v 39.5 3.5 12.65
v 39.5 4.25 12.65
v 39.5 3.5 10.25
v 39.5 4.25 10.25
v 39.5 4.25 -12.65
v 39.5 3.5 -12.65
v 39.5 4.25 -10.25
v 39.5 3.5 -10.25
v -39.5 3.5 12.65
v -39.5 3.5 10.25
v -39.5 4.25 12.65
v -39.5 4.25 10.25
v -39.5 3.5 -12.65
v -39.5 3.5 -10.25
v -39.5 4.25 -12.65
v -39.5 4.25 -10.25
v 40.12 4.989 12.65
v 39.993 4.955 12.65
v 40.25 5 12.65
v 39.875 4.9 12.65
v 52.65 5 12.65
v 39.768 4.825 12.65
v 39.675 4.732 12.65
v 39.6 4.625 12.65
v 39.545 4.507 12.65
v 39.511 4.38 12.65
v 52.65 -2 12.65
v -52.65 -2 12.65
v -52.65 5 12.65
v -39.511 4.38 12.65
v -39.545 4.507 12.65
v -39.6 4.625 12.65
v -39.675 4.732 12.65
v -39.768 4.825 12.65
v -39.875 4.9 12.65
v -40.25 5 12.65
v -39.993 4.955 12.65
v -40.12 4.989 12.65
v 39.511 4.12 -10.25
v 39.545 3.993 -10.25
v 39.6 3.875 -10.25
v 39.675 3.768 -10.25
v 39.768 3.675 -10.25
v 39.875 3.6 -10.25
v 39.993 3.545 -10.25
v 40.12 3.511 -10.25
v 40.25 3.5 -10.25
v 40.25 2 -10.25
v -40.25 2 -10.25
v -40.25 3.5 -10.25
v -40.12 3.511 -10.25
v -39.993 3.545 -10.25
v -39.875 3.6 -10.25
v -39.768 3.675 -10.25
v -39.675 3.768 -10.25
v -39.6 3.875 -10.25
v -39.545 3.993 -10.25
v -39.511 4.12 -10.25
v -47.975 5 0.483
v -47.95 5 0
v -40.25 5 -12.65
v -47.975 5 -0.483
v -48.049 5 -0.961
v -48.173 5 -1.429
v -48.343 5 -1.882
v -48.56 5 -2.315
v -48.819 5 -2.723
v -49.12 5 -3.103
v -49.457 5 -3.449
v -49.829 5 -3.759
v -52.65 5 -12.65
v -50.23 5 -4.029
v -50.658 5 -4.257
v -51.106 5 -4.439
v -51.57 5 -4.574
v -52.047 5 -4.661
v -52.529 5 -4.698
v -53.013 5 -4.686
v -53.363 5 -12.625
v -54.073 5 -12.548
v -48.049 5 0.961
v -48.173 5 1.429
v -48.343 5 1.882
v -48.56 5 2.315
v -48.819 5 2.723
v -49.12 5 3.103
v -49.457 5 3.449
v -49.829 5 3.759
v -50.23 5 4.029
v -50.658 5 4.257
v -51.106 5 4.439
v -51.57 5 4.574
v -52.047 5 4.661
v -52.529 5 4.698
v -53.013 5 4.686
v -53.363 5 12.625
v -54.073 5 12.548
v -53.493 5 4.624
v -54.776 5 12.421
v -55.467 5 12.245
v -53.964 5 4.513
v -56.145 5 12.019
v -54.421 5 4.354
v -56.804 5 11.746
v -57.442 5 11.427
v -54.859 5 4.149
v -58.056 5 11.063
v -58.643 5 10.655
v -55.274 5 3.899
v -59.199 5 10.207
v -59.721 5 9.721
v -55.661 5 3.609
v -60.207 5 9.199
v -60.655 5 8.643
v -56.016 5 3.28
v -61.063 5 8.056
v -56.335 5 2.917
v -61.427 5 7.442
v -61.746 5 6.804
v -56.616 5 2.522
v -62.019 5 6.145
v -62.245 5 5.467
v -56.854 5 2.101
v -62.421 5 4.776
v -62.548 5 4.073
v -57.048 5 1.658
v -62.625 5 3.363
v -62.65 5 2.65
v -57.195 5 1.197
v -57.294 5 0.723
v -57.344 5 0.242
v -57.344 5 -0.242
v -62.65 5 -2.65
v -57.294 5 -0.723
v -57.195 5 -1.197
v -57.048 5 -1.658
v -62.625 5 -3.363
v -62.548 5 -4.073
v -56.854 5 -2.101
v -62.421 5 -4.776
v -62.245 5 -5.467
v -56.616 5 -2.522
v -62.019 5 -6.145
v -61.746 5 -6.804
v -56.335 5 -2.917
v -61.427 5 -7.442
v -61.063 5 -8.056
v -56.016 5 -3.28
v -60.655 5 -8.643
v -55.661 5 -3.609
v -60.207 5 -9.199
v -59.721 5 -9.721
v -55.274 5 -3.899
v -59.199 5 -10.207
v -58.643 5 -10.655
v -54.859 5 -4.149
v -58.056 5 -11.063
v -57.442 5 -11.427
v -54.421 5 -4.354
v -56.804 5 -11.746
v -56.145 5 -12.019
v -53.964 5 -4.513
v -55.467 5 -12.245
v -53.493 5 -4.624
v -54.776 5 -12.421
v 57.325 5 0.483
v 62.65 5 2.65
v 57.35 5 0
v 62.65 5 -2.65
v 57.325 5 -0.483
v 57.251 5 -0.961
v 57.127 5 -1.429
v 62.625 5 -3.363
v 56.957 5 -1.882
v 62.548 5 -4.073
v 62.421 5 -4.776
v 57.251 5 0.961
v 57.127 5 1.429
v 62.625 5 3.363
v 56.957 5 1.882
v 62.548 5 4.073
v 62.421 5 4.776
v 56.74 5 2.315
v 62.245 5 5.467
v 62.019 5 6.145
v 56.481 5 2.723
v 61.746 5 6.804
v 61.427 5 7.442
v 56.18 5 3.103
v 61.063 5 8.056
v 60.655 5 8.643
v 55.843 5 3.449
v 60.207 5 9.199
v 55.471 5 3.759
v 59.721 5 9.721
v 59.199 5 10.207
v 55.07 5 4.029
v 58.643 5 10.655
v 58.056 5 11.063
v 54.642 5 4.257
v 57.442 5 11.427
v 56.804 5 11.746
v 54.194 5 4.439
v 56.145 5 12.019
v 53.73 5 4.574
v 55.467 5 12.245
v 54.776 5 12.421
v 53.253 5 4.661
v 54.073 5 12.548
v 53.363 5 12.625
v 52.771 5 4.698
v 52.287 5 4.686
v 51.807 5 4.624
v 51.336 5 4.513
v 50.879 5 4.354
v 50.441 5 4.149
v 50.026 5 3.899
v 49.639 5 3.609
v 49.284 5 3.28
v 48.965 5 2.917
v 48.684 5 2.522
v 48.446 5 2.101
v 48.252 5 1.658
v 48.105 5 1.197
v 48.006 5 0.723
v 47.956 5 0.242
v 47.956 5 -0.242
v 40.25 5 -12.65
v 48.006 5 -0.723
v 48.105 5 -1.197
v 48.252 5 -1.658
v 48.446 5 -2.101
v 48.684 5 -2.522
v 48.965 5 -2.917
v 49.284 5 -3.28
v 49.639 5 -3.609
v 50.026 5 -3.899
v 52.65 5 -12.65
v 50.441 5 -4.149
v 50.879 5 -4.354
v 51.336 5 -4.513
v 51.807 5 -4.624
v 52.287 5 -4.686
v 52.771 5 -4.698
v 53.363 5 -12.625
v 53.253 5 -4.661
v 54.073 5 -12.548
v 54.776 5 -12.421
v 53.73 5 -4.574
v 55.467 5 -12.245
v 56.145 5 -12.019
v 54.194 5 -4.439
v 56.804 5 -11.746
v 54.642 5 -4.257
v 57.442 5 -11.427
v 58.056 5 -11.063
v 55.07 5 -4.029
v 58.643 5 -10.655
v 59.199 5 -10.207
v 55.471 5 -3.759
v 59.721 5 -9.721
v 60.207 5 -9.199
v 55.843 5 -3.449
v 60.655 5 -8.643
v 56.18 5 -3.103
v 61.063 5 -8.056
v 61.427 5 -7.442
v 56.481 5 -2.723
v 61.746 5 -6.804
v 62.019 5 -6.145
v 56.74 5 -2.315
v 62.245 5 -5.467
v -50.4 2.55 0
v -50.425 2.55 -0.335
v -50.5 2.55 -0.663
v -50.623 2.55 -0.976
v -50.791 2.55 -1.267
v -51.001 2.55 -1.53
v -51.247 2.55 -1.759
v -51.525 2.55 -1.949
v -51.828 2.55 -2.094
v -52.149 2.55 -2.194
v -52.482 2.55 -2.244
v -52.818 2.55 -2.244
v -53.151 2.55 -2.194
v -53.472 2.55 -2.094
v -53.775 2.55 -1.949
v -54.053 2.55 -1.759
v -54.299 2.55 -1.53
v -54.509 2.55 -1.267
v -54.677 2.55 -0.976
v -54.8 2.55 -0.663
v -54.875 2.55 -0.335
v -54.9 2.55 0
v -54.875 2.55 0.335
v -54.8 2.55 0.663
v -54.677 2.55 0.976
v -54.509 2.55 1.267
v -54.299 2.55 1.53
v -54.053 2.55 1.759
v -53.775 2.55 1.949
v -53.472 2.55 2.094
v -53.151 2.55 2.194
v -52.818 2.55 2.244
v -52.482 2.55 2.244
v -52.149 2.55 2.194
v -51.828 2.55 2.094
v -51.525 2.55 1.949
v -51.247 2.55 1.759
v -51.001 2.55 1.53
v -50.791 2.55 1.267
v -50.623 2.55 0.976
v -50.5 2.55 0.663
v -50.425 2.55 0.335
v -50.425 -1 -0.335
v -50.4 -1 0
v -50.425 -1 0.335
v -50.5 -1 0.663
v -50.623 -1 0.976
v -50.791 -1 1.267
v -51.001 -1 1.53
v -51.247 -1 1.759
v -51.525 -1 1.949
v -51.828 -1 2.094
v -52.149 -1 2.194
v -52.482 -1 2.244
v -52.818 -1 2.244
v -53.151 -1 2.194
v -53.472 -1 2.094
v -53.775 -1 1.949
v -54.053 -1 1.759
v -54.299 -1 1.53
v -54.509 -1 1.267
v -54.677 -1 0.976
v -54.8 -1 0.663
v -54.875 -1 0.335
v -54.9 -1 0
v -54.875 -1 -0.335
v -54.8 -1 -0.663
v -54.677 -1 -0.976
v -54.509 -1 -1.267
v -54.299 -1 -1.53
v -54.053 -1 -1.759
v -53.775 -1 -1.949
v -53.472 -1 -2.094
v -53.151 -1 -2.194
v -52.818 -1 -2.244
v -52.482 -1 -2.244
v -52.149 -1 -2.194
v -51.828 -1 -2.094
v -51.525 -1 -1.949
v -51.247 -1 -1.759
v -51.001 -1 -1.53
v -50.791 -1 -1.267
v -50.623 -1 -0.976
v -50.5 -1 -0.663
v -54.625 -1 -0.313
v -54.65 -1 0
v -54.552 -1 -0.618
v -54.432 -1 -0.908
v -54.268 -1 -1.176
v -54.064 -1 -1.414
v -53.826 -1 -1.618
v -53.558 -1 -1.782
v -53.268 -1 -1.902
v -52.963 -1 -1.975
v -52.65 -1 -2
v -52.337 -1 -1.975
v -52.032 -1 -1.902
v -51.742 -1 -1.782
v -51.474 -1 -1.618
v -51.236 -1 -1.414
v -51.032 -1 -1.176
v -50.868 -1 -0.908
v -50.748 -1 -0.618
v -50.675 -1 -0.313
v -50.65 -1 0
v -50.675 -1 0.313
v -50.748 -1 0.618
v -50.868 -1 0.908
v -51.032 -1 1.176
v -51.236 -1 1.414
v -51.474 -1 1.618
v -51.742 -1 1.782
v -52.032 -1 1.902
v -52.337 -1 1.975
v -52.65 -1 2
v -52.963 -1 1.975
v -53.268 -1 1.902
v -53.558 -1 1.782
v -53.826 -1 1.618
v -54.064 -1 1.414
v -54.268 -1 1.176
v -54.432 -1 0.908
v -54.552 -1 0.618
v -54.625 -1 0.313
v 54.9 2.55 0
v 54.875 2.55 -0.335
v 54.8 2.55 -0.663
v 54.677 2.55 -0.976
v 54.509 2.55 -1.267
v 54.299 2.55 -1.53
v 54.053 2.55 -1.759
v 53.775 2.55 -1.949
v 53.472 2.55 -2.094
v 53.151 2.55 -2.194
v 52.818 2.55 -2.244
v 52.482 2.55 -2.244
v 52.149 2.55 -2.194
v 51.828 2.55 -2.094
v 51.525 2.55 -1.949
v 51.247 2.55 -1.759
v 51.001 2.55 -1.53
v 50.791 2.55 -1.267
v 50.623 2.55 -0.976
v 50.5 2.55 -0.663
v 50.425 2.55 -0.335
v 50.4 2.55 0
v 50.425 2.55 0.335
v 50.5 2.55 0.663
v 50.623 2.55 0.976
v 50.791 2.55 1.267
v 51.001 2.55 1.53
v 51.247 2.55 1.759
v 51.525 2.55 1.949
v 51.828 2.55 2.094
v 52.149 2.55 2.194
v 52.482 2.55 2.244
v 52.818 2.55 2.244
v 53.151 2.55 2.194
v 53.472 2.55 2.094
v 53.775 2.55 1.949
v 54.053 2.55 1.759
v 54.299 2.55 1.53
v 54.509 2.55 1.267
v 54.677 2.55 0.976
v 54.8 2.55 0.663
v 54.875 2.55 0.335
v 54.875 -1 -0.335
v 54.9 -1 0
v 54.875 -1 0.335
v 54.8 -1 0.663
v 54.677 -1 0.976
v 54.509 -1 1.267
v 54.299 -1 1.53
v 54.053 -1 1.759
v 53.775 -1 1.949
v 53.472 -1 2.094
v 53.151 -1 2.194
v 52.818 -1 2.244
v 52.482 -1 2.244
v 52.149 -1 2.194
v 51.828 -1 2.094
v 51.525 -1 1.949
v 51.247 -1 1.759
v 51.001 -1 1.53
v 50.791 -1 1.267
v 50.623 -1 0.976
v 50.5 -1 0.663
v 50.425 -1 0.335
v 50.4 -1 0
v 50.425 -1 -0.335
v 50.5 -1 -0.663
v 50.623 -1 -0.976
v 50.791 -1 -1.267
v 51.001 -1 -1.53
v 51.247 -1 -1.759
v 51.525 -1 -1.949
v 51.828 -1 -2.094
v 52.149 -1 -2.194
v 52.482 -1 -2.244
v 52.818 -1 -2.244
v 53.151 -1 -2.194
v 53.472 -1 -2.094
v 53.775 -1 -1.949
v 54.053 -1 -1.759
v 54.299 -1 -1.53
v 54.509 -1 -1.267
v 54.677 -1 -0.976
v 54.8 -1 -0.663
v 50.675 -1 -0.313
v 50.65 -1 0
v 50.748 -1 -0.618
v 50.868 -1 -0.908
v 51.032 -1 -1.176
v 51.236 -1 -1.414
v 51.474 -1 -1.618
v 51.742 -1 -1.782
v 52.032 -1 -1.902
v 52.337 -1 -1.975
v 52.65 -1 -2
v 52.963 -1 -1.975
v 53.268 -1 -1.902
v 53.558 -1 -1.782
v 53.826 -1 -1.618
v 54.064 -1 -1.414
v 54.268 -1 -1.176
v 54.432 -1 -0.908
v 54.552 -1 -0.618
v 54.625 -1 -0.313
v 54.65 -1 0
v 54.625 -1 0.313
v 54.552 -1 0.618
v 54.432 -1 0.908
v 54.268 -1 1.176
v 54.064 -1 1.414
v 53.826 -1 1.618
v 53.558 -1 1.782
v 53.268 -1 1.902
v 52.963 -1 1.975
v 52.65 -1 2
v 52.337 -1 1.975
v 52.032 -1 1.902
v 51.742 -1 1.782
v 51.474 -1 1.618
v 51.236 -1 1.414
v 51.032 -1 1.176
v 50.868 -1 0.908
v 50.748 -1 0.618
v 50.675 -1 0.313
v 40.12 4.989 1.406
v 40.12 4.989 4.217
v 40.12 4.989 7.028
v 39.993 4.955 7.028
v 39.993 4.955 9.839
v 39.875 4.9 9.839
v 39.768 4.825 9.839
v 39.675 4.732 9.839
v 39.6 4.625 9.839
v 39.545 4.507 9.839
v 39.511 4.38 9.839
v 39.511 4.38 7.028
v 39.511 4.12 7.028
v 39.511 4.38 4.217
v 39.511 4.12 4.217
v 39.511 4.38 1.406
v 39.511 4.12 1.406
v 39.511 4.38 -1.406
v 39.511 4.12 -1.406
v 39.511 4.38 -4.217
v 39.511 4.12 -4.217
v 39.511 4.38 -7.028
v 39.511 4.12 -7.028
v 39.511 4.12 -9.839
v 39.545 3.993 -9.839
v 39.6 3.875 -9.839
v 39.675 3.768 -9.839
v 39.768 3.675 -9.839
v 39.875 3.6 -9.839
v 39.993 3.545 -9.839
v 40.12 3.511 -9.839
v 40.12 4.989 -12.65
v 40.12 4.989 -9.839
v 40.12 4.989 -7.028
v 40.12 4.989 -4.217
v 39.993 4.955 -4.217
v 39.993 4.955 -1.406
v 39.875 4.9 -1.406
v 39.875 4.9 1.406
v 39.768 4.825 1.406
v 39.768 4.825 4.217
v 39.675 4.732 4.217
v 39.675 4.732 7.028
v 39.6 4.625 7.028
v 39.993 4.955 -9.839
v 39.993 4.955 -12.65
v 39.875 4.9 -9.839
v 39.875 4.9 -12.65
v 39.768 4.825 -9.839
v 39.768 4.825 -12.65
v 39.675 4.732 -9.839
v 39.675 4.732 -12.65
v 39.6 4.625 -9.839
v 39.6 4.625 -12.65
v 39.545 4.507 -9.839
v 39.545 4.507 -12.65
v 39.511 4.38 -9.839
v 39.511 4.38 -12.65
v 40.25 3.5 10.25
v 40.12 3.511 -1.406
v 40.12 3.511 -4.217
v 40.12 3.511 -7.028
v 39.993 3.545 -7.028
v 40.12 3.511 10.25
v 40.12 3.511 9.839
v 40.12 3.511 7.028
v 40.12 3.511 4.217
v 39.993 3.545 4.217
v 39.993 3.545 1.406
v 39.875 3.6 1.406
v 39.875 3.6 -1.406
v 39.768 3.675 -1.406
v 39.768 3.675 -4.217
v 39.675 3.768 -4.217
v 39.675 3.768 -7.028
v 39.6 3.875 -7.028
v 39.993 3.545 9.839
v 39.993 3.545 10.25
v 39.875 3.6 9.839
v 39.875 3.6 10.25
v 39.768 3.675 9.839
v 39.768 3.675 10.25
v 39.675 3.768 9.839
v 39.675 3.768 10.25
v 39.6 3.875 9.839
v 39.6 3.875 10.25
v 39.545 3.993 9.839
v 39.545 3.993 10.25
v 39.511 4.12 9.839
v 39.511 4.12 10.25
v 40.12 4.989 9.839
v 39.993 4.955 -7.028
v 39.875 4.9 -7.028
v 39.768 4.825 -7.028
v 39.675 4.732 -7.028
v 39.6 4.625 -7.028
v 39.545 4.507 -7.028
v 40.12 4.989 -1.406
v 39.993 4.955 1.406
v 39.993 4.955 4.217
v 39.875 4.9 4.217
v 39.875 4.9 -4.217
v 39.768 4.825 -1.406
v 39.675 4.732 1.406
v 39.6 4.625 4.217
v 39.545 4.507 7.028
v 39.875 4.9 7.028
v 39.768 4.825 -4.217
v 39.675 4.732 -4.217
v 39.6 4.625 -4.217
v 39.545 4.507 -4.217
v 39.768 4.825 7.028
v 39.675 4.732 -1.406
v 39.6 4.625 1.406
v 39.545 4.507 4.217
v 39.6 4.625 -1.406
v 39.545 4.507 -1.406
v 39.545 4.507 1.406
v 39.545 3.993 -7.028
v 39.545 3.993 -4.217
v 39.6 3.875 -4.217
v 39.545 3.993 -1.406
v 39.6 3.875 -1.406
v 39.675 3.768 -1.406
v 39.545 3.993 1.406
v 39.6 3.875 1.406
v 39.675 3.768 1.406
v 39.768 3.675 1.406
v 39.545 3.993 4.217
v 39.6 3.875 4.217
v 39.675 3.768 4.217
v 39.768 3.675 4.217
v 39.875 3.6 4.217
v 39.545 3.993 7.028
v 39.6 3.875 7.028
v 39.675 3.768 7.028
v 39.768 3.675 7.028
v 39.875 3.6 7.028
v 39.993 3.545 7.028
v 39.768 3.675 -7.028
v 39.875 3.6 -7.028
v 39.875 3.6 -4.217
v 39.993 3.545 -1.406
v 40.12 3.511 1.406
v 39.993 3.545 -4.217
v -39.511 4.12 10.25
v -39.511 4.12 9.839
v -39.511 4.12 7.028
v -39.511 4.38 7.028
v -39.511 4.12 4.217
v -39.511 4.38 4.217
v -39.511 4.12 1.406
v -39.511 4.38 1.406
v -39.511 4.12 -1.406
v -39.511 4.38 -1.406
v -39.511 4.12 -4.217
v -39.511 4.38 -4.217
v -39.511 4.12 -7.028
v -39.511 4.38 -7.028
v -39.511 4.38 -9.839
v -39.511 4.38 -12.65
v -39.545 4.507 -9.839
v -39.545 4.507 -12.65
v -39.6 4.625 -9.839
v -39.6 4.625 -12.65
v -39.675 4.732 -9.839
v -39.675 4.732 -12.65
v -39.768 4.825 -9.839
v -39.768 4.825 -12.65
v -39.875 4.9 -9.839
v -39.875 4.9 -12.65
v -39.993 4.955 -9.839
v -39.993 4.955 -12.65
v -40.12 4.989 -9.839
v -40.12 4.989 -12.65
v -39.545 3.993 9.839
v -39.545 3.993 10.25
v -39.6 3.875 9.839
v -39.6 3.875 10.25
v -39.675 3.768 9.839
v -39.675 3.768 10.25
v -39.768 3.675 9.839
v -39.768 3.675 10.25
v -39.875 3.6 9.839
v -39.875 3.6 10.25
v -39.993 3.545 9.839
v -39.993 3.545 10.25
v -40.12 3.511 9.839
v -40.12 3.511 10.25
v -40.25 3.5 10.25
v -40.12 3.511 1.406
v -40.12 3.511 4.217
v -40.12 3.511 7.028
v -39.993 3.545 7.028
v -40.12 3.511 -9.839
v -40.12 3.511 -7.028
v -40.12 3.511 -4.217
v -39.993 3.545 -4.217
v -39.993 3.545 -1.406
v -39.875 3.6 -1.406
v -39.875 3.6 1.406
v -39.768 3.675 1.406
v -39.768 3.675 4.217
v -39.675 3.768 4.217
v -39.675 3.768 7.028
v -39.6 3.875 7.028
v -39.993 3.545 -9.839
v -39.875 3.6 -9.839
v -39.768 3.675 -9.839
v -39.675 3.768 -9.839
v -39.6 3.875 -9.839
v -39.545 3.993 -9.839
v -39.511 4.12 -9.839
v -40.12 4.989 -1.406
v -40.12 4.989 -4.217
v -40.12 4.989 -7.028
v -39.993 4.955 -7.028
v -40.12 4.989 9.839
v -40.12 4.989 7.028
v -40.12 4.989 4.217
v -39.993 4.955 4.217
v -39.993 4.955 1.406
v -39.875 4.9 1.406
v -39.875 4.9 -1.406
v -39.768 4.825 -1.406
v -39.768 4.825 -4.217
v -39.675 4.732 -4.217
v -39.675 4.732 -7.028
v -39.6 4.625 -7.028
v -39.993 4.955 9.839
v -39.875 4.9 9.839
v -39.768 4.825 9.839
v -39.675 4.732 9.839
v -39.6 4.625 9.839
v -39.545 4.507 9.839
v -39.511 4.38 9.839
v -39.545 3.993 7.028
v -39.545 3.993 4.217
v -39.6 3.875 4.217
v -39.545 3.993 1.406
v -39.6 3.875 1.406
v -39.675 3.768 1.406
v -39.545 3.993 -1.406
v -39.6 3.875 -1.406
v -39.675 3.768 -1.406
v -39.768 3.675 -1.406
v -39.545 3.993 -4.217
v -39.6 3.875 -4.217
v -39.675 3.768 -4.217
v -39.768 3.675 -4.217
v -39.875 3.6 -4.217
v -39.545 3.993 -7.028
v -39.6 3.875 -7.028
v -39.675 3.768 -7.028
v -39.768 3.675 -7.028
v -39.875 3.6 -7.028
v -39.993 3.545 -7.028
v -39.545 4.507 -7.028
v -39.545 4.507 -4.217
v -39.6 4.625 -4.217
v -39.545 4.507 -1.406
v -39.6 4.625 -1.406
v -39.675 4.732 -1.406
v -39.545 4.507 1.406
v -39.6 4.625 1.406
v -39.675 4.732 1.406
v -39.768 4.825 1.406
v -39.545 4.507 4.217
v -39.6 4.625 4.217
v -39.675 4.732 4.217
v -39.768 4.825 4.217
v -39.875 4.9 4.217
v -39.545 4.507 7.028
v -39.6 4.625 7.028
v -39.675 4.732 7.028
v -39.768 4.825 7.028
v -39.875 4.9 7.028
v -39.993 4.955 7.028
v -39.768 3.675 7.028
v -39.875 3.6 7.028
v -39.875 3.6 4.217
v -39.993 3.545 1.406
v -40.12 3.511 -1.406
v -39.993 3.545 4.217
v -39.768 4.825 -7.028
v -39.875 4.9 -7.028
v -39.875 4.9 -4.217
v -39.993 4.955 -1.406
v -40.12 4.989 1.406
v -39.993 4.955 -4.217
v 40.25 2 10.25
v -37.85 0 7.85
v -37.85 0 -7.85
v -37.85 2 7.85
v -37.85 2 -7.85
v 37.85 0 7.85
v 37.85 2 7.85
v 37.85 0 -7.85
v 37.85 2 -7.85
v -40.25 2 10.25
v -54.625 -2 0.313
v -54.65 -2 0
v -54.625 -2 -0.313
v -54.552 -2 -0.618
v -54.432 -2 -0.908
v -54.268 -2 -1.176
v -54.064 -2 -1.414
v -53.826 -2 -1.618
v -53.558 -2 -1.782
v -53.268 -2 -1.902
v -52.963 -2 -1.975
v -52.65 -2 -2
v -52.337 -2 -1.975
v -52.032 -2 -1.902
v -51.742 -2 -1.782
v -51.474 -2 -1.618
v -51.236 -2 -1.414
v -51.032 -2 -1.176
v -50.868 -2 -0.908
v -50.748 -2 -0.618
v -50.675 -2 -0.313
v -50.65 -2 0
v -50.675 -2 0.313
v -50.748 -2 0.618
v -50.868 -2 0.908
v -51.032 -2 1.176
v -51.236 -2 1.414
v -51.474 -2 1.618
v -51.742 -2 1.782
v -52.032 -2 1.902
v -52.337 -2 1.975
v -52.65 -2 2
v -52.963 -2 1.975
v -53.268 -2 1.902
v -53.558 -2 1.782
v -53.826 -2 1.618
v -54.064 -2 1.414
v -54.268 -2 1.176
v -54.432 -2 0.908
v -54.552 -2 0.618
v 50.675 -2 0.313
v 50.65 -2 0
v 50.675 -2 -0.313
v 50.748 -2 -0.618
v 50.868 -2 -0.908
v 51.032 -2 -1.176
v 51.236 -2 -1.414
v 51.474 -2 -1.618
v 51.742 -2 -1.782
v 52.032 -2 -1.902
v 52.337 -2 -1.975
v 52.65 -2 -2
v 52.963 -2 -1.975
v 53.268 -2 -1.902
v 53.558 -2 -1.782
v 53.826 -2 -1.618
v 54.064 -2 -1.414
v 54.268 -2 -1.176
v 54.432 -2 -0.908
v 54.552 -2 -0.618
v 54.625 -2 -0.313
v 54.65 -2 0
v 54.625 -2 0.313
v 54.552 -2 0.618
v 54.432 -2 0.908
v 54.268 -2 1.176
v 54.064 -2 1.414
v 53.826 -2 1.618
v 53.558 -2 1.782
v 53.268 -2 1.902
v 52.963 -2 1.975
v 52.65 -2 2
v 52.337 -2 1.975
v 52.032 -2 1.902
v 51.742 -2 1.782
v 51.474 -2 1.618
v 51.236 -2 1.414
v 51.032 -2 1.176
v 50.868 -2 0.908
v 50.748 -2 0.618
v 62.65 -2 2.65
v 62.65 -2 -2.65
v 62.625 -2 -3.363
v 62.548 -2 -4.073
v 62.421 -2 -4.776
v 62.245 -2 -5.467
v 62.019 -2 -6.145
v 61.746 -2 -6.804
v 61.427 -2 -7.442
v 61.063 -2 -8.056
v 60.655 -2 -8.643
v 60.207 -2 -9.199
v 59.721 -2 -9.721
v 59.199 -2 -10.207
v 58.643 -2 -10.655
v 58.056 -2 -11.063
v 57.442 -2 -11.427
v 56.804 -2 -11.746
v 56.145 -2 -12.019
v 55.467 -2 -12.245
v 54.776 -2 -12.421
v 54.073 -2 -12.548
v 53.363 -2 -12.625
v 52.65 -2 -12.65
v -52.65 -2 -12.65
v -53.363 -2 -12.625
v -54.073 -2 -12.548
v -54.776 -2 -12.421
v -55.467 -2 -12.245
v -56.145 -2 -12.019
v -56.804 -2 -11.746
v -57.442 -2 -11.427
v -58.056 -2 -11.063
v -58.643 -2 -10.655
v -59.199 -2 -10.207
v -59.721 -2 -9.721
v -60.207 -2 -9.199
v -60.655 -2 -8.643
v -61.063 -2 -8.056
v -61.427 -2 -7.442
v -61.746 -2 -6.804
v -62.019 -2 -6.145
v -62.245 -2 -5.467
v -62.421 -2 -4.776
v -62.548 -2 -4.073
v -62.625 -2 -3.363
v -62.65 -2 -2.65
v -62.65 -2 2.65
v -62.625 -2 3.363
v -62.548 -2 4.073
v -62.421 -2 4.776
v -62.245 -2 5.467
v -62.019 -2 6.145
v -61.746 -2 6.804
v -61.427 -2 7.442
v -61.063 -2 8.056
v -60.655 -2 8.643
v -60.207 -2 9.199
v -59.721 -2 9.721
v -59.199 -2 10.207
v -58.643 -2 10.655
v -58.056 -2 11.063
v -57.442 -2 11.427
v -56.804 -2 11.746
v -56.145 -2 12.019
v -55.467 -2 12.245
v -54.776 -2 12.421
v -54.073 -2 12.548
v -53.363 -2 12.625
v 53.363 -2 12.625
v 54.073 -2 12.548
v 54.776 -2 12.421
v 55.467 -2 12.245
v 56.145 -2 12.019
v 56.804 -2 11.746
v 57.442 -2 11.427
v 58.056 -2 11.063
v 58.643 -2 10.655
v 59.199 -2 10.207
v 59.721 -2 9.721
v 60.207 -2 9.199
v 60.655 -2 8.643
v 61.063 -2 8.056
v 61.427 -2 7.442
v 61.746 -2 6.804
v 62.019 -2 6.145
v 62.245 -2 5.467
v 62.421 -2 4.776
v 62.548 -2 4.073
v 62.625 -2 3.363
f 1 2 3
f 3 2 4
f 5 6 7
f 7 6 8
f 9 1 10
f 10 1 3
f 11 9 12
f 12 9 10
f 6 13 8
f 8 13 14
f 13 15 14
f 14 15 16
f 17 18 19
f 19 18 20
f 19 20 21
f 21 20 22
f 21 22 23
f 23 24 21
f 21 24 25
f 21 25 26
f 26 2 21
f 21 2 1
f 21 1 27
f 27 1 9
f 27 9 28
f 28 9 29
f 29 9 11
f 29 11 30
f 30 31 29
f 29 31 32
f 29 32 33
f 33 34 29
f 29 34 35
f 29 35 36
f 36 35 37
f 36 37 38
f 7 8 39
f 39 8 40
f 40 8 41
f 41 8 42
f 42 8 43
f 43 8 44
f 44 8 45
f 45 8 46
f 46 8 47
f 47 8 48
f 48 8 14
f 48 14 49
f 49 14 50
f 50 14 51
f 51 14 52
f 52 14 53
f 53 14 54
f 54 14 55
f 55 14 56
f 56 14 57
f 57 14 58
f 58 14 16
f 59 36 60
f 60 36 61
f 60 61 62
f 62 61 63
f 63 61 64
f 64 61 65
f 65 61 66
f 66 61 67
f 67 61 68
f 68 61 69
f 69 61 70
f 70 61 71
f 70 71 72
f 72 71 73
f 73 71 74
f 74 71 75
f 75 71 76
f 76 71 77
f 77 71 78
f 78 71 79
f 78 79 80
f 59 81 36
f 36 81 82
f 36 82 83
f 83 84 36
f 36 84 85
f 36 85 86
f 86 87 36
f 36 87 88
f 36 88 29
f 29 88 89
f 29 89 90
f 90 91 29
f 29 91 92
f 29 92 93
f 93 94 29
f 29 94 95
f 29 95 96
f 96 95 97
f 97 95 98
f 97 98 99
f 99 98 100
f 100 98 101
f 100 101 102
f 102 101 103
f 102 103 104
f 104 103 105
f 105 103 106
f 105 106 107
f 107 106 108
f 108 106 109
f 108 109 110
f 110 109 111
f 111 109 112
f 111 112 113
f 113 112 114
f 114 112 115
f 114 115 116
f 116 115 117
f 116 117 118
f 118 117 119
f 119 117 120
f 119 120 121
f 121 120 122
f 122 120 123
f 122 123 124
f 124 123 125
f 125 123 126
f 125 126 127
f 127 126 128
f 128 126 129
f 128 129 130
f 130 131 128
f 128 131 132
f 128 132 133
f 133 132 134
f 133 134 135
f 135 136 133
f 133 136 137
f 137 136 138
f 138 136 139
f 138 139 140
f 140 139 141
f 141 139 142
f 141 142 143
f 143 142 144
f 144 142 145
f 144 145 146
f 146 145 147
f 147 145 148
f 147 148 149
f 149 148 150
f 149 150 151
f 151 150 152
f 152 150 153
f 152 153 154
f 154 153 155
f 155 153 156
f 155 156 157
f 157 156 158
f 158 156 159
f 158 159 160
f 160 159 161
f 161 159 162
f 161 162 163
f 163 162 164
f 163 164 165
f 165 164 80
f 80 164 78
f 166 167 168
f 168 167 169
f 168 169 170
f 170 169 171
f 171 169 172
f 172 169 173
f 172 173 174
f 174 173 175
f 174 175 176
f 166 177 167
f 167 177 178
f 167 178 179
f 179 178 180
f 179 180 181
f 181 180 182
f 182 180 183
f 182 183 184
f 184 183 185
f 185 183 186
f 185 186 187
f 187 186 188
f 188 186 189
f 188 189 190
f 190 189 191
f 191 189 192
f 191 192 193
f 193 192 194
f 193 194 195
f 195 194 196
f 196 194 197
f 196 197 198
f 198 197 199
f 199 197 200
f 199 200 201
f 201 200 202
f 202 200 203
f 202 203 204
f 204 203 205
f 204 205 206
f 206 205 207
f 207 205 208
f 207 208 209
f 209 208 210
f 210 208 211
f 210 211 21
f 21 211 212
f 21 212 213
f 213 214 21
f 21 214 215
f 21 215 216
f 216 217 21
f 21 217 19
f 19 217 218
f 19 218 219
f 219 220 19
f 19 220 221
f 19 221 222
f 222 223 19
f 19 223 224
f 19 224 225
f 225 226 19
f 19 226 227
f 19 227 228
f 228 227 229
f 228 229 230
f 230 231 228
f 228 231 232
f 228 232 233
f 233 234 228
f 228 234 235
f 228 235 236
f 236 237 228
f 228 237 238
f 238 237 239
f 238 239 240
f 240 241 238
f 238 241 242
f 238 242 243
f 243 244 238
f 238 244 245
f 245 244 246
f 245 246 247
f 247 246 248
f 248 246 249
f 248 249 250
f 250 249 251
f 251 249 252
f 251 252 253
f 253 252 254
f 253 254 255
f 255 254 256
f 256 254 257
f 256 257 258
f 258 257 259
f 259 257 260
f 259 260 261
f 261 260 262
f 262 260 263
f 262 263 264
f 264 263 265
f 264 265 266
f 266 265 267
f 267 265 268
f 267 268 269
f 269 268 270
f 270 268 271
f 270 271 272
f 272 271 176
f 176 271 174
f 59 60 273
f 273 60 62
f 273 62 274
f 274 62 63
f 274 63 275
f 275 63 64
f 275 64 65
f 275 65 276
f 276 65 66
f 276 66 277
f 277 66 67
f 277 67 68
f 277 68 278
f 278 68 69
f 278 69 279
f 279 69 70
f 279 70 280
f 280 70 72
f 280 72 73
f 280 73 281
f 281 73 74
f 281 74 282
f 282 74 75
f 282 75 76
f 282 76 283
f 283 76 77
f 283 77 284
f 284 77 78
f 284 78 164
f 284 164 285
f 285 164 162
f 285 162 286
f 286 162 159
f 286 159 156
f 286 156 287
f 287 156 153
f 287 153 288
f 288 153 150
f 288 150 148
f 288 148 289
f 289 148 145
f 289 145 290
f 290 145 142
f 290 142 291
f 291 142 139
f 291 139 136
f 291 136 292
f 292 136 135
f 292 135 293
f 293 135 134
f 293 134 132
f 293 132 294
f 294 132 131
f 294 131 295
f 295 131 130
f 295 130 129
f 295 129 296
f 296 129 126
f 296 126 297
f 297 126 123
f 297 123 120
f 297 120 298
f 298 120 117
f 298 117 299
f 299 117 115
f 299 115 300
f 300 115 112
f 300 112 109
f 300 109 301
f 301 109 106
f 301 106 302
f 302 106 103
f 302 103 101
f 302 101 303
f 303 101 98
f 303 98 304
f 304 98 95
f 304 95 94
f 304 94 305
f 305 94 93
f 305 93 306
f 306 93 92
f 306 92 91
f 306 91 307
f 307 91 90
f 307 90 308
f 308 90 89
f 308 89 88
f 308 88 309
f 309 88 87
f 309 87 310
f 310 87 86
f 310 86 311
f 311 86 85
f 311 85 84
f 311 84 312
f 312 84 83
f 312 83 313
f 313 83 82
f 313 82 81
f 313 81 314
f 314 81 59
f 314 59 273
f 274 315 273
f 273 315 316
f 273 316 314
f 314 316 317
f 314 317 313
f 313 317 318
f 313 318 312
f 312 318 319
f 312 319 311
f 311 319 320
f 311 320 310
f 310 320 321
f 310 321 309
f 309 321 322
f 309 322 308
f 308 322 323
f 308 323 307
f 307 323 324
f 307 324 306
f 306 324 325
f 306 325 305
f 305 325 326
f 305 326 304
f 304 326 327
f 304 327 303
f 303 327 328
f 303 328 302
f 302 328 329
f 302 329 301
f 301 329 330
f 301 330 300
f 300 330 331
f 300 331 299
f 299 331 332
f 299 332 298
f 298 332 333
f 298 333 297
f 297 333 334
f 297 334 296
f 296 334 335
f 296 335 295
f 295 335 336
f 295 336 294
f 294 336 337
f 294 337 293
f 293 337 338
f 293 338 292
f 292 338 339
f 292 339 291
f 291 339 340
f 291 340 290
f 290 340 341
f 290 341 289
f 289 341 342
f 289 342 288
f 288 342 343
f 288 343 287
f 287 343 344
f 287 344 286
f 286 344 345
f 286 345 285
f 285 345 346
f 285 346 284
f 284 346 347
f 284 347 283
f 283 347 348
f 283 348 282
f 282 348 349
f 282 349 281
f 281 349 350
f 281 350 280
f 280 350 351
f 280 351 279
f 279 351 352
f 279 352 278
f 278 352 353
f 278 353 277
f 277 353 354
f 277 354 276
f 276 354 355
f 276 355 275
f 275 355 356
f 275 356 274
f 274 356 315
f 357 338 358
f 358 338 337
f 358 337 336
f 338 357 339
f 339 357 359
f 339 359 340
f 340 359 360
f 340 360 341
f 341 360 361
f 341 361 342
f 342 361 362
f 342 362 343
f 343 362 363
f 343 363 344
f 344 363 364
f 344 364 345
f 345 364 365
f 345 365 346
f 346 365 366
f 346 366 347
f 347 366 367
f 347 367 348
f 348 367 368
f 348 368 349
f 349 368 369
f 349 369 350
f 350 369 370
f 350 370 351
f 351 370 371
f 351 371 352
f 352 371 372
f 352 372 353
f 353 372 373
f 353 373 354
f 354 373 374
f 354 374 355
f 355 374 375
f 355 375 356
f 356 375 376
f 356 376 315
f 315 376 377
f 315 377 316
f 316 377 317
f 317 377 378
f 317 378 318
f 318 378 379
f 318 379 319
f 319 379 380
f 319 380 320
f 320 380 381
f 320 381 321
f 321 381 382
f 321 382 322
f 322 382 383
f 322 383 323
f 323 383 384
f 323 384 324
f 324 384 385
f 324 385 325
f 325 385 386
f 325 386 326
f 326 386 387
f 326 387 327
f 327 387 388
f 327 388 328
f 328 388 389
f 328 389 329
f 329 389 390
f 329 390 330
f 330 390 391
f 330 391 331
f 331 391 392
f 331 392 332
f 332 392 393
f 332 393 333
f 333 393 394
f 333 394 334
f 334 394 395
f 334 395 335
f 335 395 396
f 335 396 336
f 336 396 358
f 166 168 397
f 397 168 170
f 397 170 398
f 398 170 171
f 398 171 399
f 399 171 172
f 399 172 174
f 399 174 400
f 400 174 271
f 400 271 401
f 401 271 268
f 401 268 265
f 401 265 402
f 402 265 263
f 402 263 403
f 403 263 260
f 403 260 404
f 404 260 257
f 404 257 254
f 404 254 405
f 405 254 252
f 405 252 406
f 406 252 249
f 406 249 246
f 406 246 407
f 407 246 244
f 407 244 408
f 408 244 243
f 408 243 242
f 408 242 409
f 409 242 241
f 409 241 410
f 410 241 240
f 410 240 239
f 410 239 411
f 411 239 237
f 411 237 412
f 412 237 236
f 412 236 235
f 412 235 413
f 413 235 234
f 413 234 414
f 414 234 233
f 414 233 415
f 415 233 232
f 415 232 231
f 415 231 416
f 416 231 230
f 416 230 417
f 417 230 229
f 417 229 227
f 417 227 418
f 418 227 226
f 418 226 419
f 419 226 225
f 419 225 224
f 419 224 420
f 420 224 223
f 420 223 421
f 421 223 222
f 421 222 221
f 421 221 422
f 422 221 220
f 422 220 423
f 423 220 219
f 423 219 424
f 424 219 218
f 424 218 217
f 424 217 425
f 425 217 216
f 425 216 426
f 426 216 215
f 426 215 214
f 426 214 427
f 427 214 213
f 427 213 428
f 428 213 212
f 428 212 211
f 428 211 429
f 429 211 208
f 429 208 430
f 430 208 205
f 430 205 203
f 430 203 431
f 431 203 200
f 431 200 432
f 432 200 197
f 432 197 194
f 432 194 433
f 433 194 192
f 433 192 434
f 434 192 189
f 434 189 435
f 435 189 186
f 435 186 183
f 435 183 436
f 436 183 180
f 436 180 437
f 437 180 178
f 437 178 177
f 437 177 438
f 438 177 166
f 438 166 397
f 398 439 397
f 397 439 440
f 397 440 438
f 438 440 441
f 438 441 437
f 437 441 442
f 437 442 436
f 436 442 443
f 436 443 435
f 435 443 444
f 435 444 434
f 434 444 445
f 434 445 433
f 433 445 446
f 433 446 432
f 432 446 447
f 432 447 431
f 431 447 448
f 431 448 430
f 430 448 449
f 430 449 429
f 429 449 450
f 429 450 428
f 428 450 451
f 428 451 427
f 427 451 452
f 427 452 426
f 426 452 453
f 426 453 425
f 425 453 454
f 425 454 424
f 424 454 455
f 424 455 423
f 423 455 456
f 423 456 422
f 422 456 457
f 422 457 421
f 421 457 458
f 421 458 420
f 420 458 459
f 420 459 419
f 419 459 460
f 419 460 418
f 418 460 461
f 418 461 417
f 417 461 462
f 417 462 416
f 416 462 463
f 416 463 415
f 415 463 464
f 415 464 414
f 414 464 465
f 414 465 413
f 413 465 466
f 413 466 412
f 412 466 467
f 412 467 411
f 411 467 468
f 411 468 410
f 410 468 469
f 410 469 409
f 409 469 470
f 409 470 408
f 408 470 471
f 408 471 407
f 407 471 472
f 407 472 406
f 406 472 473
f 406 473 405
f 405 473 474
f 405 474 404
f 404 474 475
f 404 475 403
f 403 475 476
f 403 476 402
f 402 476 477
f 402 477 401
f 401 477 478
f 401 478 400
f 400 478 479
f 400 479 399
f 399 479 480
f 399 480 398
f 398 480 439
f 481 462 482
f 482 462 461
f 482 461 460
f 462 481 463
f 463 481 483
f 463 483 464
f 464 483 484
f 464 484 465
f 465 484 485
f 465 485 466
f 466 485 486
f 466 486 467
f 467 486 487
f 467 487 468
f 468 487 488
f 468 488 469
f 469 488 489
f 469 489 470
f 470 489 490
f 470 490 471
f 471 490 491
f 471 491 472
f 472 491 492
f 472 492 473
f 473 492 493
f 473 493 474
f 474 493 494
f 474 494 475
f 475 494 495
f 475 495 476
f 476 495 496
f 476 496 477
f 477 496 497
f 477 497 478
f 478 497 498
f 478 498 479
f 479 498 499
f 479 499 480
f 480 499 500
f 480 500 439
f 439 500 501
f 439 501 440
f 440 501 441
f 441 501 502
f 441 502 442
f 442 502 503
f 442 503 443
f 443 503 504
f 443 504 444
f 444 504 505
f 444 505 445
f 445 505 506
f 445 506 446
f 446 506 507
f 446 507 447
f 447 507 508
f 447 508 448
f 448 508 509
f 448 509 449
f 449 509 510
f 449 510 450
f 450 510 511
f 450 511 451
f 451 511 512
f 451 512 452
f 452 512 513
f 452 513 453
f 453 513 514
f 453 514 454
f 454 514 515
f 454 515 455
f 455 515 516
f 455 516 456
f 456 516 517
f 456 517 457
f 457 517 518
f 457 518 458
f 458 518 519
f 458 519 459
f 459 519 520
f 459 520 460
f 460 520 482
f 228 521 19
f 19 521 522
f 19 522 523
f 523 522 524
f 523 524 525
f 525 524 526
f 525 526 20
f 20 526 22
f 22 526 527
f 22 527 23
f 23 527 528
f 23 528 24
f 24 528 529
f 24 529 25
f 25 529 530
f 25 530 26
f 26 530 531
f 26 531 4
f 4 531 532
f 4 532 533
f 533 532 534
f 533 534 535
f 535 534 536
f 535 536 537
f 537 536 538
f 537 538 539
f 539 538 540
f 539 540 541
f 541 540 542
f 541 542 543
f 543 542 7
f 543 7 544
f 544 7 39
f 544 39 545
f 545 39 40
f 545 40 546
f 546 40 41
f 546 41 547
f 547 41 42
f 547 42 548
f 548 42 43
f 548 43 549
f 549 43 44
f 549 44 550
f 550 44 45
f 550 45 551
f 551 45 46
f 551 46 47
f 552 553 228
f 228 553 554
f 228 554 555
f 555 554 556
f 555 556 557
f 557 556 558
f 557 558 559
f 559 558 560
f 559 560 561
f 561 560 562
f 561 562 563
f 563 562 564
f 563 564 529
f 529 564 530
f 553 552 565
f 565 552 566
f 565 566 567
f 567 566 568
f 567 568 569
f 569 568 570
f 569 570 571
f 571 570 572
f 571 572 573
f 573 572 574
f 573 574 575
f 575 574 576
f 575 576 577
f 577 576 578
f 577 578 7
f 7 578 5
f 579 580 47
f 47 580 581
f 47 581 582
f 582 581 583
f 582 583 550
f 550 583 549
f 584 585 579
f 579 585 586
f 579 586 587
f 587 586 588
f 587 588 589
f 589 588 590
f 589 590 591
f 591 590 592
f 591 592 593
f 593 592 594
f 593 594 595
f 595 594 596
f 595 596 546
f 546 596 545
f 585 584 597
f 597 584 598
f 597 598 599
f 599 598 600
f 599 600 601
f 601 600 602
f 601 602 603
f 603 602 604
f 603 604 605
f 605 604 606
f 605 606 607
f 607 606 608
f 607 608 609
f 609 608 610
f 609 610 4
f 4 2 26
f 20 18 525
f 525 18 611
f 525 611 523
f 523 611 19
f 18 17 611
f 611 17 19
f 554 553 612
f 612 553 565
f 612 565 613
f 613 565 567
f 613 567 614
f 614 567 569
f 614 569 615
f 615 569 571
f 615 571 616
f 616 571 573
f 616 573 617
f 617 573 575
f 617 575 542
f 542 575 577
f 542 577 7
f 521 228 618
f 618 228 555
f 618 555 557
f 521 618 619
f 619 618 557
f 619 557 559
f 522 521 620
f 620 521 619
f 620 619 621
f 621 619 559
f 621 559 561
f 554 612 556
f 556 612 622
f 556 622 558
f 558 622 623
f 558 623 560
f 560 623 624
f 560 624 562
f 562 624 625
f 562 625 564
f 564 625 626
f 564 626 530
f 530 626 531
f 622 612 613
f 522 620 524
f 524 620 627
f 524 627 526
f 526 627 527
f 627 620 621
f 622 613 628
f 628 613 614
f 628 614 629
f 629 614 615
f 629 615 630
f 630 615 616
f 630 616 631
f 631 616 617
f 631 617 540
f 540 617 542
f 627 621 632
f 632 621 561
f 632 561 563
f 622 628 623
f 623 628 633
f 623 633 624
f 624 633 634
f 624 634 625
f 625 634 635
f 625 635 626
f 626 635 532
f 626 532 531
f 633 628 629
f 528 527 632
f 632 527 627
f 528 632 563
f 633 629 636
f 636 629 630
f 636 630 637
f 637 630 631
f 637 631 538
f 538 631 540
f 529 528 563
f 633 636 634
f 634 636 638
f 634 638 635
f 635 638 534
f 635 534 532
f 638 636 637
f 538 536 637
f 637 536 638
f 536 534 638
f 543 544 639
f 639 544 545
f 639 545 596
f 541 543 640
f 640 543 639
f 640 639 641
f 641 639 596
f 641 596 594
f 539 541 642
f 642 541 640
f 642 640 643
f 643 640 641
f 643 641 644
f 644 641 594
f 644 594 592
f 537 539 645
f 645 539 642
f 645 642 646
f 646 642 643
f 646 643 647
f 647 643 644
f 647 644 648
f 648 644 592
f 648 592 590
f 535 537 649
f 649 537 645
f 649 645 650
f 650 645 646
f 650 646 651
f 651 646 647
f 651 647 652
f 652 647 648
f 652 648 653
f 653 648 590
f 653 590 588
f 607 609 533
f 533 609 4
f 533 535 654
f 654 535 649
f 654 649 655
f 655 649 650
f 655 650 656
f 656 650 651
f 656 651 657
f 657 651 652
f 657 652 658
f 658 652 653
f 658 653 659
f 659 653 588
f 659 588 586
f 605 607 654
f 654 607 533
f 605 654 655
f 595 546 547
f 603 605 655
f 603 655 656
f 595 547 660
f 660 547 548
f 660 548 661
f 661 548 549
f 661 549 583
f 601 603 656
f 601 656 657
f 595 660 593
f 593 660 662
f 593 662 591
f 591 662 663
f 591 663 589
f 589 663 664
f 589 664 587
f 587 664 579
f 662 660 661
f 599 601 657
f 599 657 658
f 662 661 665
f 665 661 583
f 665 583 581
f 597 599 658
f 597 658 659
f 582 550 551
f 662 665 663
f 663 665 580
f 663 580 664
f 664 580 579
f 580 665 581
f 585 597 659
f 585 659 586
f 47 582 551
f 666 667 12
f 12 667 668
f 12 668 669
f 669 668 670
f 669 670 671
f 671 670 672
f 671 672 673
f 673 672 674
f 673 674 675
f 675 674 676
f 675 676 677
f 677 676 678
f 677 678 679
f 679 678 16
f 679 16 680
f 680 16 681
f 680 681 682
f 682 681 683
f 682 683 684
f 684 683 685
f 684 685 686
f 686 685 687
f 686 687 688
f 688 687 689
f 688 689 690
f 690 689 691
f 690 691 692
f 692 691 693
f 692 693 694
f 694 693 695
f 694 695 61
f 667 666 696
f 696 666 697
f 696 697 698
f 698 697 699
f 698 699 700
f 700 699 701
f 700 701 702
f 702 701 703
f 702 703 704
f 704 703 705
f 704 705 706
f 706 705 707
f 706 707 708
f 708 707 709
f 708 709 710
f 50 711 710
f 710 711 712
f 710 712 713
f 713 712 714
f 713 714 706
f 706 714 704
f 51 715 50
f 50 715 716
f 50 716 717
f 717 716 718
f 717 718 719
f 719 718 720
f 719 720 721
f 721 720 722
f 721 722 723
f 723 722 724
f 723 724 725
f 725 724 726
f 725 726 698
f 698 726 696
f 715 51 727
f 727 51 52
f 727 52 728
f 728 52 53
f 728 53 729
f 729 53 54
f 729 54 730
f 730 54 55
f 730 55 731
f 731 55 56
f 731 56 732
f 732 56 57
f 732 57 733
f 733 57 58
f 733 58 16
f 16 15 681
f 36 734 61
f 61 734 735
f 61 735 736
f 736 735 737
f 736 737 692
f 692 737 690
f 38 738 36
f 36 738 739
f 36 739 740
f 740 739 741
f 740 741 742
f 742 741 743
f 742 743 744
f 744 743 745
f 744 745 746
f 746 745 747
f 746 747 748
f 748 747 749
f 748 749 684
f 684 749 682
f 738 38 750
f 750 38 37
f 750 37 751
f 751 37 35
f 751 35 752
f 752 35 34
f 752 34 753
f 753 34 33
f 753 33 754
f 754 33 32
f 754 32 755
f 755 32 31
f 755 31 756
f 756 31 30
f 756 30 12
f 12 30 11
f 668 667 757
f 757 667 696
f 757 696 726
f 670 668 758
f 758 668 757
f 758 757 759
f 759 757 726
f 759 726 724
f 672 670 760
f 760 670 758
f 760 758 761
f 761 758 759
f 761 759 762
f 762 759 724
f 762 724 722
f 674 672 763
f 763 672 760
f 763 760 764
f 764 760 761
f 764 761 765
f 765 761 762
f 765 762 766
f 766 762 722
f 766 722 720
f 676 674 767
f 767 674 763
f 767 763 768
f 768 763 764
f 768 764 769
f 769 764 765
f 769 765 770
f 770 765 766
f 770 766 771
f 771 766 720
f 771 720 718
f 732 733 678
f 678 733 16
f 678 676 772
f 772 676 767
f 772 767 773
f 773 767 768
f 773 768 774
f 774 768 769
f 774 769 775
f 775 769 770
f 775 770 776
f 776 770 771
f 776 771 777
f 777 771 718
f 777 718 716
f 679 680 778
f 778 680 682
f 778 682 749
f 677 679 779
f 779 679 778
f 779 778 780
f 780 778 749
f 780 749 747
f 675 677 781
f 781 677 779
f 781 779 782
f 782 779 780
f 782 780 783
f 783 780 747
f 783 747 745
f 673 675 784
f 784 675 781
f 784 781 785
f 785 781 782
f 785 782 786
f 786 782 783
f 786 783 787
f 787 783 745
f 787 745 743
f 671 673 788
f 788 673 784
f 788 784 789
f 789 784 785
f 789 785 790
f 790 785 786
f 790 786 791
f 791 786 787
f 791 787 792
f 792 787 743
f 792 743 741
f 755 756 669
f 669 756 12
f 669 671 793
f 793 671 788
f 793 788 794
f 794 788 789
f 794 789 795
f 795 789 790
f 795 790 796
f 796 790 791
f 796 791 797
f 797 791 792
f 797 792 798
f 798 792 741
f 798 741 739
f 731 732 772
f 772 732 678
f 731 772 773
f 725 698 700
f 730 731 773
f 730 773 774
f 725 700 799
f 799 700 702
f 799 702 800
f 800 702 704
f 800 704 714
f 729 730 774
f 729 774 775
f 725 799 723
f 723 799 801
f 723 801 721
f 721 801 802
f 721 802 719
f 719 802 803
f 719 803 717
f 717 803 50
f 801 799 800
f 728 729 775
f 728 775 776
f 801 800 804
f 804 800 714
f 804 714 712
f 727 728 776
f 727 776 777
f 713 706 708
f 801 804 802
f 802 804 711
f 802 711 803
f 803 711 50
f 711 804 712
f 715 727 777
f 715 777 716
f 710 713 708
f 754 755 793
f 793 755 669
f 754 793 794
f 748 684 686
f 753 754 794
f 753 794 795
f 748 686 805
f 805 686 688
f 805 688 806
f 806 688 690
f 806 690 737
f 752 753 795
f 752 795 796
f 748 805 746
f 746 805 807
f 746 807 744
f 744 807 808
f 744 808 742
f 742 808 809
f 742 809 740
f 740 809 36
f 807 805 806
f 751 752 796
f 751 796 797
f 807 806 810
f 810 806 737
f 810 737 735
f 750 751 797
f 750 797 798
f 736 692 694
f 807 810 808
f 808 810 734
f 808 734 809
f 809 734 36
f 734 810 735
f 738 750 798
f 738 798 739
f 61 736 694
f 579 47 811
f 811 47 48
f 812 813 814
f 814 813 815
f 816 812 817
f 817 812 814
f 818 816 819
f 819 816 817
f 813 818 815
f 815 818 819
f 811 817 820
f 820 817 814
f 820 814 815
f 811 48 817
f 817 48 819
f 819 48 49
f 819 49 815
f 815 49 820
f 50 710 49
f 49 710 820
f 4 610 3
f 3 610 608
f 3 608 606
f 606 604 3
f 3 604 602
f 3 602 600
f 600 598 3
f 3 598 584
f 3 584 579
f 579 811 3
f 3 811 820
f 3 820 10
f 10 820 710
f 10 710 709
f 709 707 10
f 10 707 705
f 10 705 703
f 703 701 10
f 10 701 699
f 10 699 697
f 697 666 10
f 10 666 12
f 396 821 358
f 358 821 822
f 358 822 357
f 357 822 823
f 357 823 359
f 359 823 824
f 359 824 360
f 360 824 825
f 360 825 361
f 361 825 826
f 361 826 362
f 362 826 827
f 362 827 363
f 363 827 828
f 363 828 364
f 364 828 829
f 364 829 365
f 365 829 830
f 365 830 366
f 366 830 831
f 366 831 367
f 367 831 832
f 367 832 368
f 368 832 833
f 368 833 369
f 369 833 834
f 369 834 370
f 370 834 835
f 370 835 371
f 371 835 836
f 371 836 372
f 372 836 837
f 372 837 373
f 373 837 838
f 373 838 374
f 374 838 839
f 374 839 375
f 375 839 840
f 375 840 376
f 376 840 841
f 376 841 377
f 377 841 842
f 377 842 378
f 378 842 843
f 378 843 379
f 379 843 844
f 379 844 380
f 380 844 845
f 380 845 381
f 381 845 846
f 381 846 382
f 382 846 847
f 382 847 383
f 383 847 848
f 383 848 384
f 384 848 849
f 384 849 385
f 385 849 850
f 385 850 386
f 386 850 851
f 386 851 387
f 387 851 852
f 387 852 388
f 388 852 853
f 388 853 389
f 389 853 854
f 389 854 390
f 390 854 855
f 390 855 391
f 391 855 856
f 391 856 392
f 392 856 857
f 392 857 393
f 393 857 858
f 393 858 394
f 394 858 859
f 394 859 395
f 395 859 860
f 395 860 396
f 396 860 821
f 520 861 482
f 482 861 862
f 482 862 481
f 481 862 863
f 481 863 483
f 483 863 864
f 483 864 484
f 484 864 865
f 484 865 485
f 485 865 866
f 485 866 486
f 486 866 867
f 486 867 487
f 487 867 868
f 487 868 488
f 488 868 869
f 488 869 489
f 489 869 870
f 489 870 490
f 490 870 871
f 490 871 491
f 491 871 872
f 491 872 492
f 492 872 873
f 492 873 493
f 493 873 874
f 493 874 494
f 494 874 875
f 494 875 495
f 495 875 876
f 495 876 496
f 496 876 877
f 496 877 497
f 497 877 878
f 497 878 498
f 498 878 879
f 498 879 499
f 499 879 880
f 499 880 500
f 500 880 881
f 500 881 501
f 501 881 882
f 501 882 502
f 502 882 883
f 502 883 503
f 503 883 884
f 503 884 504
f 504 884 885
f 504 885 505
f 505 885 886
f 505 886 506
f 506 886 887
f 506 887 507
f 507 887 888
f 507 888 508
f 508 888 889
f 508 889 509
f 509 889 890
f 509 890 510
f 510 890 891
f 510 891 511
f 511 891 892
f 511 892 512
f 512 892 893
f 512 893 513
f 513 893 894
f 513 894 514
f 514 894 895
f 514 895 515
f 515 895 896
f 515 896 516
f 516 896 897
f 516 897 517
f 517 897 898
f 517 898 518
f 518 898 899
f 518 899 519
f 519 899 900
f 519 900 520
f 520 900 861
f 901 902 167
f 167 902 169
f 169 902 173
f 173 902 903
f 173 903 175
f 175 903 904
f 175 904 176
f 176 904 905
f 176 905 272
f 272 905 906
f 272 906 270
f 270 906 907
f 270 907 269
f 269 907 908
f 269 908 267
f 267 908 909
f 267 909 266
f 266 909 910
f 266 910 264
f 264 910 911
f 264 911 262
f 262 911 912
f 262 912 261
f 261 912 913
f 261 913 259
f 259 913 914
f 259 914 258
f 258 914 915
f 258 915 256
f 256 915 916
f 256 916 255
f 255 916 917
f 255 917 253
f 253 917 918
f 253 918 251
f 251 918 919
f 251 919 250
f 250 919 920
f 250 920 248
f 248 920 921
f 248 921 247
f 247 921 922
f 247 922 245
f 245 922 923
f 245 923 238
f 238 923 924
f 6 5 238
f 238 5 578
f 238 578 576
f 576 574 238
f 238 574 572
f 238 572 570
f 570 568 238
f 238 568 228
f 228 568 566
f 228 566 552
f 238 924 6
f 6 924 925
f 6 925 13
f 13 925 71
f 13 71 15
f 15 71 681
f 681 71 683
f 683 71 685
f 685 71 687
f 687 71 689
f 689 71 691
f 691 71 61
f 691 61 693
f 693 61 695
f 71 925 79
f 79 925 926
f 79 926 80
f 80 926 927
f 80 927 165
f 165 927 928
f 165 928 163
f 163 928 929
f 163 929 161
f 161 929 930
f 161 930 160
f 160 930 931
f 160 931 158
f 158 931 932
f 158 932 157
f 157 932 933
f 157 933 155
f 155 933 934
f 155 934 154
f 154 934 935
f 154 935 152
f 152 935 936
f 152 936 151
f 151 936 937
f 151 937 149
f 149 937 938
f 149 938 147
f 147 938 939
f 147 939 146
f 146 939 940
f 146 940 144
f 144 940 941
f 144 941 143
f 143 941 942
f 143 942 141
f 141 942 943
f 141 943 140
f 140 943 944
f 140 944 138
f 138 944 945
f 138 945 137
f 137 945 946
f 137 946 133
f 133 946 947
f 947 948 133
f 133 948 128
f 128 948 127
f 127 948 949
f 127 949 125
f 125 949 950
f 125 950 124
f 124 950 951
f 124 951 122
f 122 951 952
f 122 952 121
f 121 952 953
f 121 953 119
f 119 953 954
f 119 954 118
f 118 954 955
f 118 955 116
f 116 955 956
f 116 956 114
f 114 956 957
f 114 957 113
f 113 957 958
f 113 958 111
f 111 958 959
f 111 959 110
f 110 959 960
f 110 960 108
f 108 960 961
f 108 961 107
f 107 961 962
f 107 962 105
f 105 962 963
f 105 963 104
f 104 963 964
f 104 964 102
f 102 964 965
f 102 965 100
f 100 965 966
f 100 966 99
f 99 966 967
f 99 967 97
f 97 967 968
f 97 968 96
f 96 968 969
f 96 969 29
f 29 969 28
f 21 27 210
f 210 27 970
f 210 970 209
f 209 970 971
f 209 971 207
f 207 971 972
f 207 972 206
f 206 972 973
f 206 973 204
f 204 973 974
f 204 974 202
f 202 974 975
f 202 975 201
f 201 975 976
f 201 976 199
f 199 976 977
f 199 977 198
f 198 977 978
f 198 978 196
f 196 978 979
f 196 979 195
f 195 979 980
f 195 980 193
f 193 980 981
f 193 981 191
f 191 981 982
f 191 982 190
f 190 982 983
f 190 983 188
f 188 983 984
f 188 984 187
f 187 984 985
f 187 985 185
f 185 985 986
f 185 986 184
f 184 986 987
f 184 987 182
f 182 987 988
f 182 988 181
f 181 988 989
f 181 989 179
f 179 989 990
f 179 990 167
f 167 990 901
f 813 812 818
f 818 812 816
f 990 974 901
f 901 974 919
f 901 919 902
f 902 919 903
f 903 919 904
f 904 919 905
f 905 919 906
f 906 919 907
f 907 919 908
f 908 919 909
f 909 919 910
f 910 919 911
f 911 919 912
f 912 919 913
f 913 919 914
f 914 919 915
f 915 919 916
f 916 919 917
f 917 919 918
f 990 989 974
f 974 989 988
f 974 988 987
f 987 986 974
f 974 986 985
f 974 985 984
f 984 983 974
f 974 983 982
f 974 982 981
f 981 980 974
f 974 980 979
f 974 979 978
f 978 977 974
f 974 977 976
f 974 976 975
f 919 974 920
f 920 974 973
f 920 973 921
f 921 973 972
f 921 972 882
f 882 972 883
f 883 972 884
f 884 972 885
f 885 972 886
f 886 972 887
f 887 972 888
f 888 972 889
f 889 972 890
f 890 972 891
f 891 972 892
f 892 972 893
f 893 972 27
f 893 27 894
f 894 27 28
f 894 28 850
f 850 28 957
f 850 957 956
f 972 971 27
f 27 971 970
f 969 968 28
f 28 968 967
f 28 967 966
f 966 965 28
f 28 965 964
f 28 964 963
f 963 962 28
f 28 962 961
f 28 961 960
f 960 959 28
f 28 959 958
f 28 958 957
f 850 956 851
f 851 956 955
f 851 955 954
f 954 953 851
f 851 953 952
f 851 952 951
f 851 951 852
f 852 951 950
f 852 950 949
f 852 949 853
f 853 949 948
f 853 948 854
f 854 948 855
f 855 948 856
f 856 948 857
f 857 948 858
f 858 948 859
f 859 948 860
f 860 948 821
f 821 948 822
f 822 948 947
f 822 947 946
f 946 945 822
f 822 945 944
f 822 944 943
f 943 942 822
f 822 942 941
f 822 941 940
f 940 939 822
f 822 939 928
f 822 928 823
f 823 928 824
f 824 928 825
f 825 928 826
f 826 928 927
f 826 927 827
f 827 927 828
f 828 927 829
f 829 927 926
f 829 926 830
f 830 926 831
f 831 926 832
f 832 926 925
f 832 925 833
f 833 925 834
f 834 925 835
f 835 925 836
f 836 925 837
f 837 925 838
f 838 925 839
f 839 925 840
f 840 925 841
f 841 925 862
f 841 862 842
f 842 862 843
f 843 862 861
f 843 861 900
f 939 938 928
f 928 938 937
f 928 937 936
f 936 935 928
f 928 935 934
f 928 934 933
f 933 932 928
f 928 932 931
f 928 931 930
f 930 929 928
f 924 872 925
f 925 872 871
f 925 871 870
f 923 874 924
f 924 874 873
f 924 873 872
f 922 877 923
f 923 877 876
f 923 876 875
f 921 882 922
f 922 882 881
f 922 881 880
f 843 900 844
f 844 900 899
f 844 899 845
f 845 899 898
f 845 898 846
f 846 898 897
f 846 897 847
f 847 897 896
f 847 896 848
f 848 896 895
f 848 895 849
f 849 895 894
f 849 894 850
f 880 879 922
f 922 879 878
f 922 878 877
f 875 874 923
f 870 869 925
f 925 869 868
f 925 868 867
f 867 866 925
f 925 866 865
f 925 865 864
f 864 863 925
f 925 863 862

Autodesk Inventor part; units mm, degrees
ref_plane "YZ Plane" through (0, 0, 0) normal (1, 0, 0) x (0, 1, 0)
ref_plane "XZ Plane" through (0, 0, 0) normal (0, 1, 0) x (-1, 0, 0)
ref_plane "XY Plane" through (0, 0, 0) normal (0, 0, 1) x (1, 0, 0)
sketch "Skizze1" plane through (0, 0, 0) normal (0, 1, 0) x (-1, 0, 0)
  line L0 (40.25, -10.25) -> (-40.25, -10.25)
  line L1 (-40.25, -10.25) -> (-40.25, 10.25)
  line L2 (-40.25, 10.25) -> (40.25, 10.25)
  line L3 (40.25, 10.25) -> (40.25, -10.25)
  line L4 (40.25, -10.25) -> (-40.25, 10.25) construction
  line L5 (-40.25, -10.25) -> (40.25, 10.25) construction
  line L6 (42.65, -12.65) -> (-42.65, -12.65)
  line L7 (-42.65, -12.65) -> (-42.65, 12.65)
  line L8 (-42.65, 12.65) -> (42.65, 12.65)
  line L9 (42.65, 12.65) -> (42.65, -12.65)
  line L10 (37.85, -7.85) -> (-37.85, -7.85)
  line L11 (-37.85, -7.85) -> (-37.85, 7.85)
  line L12 (-37.85, 7.85) -> (37.85, 7.85)
  line L13 (37.85, 7.85) -> (37.85, -7.85)
  line L14 (52.65, -12.65) -> (42.65, -12.65)
  line L15 (42.65, 12.65) -> (52.65, 12.65)
  circle A0 centre (52.65, 0) radius 2
  line L16 (-42.65, -12.65) -> (-52.65, -12.65)
  line L17 (-42.65, 12.65) -> (-52.65, 12.65)
  circle A1 centre (-52.65, 0) radius 2
  arc A2 (62.65, 2.65) -> (52.65, 12.65) centre (52.65, 2.65) ccw
  arc A3 (52.65, -12.65) -> (62.65, -2.65) centre (52.65, -2.65) ccw
  line L18 (62.65, 2.65) -> (62.65, -2.65)
  arc A4 (-52.65, 12.65) -> (-62.65, 2.65) centre (-52.65, 2.65) ccw
  arc A5 (-62.65, -2.65) -> (-52.65, -12.65) centre (-52.65, -2.65) ccw
  line L19 (-62.65, 2.65) -> (-62.65, -2.65)
  point P0 (0, 0)
  point P1 (62.65, 0)
  point P2 (-62.65, 0)
  dimension "d0" = 80.5
  dimension "d1" = 20.5
  dimension "d2" = 2.4
  dimension "d3" = 2.4
  dimension "d4" = 4
  dimension "d7" = 4
  dimension "d25" = 20
  dimension "d26" = 10
  dimension "d27" = 10
  dimension "d28" = 20
  dimension "d29" = 10
  dimension "d30" = 10
extrude "Extrusion1" add sketch "Skizze1" against normal blind 2 contours L0 L1 L2 L3 | L6 L7 L8 L9 | L9 L15 A2 L18 A3 L14 | L16 A5 L19 A4 L17 L7 | L10 L11 L12 L13
extrude "Extrusion2" add sketch "Skizze1" along normal blind 5 contours L6 L7 L8 L9 | L9 L15 A2 L18 A3 L14 | L16 A5 L19 A4 L17 L7
extrude "Extrusion3" add sketch "Skizze1" along normal blind 2 contours L0 L1 L2 L3
sketch "Skizze2" plane through (0, 0, 0) normal (0, 0, 1) x (1, 0, 0)
  line L0 (37.85, 0) -> (37.85, 2) projected
  line L1 (37.85, 2) -> (40.25, 2) projected
  line L2 (40.25, 2) -> (40.25, 5) projected
  line L3 (40.25, 5) -> (50.65, 5) projected
  line L4 (50.65, 5) -> (50.65, -2) projected
  line L5 (50.65, -2) -> (-50.65, -2) projected
  line L6 (-50.65, -2) -> (-50.65, 5) projected
  line L7 (-50.65, 5) -> (-40.25, 5) projected
  line L8 (-40.25, 5) -> (-40.25, 2) projected
  line L9 (-40.25, 2) -> (-37.85, 2) projected
  line L10 (-37.85, 2) -> (-37.85, 0) projected
  line L11 (-37.85, 0) -> (37.85, 0) projected
  line L12 (-62.65, 5) -> (-54.65, 5) projected
  line L13 (-54.65, 5) -> (-54.65, -2) projected
  line L14 (-54.65, -2) -> (-62.65, -2) projected
  line L15 (54.65, 5) -> (62.65, 5) projected
  line L16 (62.65, -2) -> (54.65, -2) projected
  line L17 (54.65, -2) -> (54.65, 5) projected
  arc A0 (-40.25, 3.5) -> (-40.25, 5) centre (-40.25, 4.25) ccw
  arc A1 (40.25, 5) -> (40.25, 3.5) centre (40.25, 4.25) ccw
  line L18 (-40.25, 5) -> (-40.25, 3.5)
  line L19 (40.25, 5) -> (40.25, 3.5)
  line L20 (-62.65, -2) -> (-62.65, 5) projected
  line L21 (62.65, 5) -> (62.65, -2) projected
  line L22 (-40.25, 3.5) -> (40.25, 3.5)
  line L23 (40.25, 5) -> (-40.25, 5)
  line L24 (-39.5, 4.25) -> (-39.5, 3.5)
  line L25 (39.5, 4.25) -> (39.5, 3.5)
  point P0 (0, 0)
  dimension "d14" = 1.5
  dimension "d15" = 1.5
extrude "Extrusion4" add sketch "Skizze2" along normal mid plane 20.5 contours A1 L2 | L8 A0
sketch "Skizze3" plane through (0, 5, 0) normal (0, 1, 0) x (1, 0, 0)
  circle A0 centre (-52.65, 0) radius 2 projected
  circle A1 centre (52.65, 0) radius 2 projected
  point P0 (0, 0)
hole "Bohrung1" at (-52.65, 5, 0) at (52.65, 5, 0) direction (0, -1, 0) diameter 4.5 depth 6 countersink diameter 9.4 countersink angle 90 clearance for "Flachkopfsenkschraube DIN EN ISO 2009" size "M4" standard "DIN"
extrude "Extrusion5" cut sketch "Skizze2" along normal through all both and the other way through all contours A1 L25 L22 L24 A0 L23
equation "\"d7\" = d4"
equation "\"d28\" = d25"
equation "\"d29\" = d27"
equation "\"d30\" = d26"
equation "\"d15\" = d14"
properties part number "PCB_Holder_A"
